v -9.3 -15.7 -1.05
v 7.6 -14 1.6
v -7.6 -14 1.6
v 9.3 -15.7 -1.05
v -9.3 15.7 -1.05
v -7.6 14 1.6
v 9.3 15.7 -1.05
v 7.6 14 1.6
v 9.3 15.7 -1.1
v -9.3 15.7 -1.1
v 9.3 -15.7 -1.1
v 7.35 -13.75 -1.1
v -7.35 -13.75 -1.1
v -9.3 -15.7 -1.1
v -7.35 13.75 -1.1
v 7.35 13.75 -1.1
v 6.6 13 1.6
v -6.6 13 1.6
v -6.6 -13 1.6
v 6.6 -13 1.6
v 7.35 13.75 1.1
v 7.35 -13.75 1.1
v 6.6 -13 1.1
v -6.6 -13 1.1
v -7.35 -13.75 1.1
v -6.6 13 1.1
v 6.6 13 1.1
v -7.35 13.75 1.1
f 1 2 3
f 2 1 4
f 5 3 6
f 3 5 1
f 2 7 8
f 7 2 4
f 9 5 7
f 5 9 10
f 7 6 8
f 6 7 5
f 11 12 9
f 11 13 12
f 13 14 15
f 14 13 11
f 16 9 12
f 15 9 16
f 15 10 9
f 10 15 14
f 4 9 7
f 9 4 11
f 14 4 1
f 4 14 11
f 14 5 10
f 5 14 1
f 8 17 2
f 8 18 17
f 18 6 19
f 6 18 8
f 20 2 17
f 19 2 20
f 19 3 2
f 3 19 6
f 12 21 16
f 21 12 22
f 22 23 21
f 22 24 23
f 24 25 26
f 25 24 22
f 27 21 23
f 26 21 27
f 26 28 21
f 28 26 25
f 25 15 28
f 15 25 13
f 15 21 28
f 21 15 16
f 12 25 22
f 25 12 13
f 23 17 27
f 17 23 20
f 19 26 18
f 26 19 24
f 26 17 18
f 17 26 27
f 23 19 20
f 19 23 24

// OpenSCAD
$fn=100;
clearance = 0.5;

sensor_width = 14.2;
sensor_lenght = 27.0;
sensor_height = 2.2;

module sensor_frame(){
  difference(){
      hull(){
        translate([0,0,clearance/2])
          cube([sensor_width + 2*clearance, sensor_lenght+ 2*clearance ,sensor_height + clearance],center=true);
        translate([0,0,-sensor_height/2 + clearance/20])
          cube([sensor_width + 2*sensor_height, sensor_lenght + 2*sensor_height, clearance/10], center=true);
      }
      cube([sensor_width + clearance, sensor_lenght + clearance, sensor_height],center=true);
      cube([sensor_width-1,sensor_lenght-1,2*sensor_height],center=true);
  }
}

sensor_frame();
